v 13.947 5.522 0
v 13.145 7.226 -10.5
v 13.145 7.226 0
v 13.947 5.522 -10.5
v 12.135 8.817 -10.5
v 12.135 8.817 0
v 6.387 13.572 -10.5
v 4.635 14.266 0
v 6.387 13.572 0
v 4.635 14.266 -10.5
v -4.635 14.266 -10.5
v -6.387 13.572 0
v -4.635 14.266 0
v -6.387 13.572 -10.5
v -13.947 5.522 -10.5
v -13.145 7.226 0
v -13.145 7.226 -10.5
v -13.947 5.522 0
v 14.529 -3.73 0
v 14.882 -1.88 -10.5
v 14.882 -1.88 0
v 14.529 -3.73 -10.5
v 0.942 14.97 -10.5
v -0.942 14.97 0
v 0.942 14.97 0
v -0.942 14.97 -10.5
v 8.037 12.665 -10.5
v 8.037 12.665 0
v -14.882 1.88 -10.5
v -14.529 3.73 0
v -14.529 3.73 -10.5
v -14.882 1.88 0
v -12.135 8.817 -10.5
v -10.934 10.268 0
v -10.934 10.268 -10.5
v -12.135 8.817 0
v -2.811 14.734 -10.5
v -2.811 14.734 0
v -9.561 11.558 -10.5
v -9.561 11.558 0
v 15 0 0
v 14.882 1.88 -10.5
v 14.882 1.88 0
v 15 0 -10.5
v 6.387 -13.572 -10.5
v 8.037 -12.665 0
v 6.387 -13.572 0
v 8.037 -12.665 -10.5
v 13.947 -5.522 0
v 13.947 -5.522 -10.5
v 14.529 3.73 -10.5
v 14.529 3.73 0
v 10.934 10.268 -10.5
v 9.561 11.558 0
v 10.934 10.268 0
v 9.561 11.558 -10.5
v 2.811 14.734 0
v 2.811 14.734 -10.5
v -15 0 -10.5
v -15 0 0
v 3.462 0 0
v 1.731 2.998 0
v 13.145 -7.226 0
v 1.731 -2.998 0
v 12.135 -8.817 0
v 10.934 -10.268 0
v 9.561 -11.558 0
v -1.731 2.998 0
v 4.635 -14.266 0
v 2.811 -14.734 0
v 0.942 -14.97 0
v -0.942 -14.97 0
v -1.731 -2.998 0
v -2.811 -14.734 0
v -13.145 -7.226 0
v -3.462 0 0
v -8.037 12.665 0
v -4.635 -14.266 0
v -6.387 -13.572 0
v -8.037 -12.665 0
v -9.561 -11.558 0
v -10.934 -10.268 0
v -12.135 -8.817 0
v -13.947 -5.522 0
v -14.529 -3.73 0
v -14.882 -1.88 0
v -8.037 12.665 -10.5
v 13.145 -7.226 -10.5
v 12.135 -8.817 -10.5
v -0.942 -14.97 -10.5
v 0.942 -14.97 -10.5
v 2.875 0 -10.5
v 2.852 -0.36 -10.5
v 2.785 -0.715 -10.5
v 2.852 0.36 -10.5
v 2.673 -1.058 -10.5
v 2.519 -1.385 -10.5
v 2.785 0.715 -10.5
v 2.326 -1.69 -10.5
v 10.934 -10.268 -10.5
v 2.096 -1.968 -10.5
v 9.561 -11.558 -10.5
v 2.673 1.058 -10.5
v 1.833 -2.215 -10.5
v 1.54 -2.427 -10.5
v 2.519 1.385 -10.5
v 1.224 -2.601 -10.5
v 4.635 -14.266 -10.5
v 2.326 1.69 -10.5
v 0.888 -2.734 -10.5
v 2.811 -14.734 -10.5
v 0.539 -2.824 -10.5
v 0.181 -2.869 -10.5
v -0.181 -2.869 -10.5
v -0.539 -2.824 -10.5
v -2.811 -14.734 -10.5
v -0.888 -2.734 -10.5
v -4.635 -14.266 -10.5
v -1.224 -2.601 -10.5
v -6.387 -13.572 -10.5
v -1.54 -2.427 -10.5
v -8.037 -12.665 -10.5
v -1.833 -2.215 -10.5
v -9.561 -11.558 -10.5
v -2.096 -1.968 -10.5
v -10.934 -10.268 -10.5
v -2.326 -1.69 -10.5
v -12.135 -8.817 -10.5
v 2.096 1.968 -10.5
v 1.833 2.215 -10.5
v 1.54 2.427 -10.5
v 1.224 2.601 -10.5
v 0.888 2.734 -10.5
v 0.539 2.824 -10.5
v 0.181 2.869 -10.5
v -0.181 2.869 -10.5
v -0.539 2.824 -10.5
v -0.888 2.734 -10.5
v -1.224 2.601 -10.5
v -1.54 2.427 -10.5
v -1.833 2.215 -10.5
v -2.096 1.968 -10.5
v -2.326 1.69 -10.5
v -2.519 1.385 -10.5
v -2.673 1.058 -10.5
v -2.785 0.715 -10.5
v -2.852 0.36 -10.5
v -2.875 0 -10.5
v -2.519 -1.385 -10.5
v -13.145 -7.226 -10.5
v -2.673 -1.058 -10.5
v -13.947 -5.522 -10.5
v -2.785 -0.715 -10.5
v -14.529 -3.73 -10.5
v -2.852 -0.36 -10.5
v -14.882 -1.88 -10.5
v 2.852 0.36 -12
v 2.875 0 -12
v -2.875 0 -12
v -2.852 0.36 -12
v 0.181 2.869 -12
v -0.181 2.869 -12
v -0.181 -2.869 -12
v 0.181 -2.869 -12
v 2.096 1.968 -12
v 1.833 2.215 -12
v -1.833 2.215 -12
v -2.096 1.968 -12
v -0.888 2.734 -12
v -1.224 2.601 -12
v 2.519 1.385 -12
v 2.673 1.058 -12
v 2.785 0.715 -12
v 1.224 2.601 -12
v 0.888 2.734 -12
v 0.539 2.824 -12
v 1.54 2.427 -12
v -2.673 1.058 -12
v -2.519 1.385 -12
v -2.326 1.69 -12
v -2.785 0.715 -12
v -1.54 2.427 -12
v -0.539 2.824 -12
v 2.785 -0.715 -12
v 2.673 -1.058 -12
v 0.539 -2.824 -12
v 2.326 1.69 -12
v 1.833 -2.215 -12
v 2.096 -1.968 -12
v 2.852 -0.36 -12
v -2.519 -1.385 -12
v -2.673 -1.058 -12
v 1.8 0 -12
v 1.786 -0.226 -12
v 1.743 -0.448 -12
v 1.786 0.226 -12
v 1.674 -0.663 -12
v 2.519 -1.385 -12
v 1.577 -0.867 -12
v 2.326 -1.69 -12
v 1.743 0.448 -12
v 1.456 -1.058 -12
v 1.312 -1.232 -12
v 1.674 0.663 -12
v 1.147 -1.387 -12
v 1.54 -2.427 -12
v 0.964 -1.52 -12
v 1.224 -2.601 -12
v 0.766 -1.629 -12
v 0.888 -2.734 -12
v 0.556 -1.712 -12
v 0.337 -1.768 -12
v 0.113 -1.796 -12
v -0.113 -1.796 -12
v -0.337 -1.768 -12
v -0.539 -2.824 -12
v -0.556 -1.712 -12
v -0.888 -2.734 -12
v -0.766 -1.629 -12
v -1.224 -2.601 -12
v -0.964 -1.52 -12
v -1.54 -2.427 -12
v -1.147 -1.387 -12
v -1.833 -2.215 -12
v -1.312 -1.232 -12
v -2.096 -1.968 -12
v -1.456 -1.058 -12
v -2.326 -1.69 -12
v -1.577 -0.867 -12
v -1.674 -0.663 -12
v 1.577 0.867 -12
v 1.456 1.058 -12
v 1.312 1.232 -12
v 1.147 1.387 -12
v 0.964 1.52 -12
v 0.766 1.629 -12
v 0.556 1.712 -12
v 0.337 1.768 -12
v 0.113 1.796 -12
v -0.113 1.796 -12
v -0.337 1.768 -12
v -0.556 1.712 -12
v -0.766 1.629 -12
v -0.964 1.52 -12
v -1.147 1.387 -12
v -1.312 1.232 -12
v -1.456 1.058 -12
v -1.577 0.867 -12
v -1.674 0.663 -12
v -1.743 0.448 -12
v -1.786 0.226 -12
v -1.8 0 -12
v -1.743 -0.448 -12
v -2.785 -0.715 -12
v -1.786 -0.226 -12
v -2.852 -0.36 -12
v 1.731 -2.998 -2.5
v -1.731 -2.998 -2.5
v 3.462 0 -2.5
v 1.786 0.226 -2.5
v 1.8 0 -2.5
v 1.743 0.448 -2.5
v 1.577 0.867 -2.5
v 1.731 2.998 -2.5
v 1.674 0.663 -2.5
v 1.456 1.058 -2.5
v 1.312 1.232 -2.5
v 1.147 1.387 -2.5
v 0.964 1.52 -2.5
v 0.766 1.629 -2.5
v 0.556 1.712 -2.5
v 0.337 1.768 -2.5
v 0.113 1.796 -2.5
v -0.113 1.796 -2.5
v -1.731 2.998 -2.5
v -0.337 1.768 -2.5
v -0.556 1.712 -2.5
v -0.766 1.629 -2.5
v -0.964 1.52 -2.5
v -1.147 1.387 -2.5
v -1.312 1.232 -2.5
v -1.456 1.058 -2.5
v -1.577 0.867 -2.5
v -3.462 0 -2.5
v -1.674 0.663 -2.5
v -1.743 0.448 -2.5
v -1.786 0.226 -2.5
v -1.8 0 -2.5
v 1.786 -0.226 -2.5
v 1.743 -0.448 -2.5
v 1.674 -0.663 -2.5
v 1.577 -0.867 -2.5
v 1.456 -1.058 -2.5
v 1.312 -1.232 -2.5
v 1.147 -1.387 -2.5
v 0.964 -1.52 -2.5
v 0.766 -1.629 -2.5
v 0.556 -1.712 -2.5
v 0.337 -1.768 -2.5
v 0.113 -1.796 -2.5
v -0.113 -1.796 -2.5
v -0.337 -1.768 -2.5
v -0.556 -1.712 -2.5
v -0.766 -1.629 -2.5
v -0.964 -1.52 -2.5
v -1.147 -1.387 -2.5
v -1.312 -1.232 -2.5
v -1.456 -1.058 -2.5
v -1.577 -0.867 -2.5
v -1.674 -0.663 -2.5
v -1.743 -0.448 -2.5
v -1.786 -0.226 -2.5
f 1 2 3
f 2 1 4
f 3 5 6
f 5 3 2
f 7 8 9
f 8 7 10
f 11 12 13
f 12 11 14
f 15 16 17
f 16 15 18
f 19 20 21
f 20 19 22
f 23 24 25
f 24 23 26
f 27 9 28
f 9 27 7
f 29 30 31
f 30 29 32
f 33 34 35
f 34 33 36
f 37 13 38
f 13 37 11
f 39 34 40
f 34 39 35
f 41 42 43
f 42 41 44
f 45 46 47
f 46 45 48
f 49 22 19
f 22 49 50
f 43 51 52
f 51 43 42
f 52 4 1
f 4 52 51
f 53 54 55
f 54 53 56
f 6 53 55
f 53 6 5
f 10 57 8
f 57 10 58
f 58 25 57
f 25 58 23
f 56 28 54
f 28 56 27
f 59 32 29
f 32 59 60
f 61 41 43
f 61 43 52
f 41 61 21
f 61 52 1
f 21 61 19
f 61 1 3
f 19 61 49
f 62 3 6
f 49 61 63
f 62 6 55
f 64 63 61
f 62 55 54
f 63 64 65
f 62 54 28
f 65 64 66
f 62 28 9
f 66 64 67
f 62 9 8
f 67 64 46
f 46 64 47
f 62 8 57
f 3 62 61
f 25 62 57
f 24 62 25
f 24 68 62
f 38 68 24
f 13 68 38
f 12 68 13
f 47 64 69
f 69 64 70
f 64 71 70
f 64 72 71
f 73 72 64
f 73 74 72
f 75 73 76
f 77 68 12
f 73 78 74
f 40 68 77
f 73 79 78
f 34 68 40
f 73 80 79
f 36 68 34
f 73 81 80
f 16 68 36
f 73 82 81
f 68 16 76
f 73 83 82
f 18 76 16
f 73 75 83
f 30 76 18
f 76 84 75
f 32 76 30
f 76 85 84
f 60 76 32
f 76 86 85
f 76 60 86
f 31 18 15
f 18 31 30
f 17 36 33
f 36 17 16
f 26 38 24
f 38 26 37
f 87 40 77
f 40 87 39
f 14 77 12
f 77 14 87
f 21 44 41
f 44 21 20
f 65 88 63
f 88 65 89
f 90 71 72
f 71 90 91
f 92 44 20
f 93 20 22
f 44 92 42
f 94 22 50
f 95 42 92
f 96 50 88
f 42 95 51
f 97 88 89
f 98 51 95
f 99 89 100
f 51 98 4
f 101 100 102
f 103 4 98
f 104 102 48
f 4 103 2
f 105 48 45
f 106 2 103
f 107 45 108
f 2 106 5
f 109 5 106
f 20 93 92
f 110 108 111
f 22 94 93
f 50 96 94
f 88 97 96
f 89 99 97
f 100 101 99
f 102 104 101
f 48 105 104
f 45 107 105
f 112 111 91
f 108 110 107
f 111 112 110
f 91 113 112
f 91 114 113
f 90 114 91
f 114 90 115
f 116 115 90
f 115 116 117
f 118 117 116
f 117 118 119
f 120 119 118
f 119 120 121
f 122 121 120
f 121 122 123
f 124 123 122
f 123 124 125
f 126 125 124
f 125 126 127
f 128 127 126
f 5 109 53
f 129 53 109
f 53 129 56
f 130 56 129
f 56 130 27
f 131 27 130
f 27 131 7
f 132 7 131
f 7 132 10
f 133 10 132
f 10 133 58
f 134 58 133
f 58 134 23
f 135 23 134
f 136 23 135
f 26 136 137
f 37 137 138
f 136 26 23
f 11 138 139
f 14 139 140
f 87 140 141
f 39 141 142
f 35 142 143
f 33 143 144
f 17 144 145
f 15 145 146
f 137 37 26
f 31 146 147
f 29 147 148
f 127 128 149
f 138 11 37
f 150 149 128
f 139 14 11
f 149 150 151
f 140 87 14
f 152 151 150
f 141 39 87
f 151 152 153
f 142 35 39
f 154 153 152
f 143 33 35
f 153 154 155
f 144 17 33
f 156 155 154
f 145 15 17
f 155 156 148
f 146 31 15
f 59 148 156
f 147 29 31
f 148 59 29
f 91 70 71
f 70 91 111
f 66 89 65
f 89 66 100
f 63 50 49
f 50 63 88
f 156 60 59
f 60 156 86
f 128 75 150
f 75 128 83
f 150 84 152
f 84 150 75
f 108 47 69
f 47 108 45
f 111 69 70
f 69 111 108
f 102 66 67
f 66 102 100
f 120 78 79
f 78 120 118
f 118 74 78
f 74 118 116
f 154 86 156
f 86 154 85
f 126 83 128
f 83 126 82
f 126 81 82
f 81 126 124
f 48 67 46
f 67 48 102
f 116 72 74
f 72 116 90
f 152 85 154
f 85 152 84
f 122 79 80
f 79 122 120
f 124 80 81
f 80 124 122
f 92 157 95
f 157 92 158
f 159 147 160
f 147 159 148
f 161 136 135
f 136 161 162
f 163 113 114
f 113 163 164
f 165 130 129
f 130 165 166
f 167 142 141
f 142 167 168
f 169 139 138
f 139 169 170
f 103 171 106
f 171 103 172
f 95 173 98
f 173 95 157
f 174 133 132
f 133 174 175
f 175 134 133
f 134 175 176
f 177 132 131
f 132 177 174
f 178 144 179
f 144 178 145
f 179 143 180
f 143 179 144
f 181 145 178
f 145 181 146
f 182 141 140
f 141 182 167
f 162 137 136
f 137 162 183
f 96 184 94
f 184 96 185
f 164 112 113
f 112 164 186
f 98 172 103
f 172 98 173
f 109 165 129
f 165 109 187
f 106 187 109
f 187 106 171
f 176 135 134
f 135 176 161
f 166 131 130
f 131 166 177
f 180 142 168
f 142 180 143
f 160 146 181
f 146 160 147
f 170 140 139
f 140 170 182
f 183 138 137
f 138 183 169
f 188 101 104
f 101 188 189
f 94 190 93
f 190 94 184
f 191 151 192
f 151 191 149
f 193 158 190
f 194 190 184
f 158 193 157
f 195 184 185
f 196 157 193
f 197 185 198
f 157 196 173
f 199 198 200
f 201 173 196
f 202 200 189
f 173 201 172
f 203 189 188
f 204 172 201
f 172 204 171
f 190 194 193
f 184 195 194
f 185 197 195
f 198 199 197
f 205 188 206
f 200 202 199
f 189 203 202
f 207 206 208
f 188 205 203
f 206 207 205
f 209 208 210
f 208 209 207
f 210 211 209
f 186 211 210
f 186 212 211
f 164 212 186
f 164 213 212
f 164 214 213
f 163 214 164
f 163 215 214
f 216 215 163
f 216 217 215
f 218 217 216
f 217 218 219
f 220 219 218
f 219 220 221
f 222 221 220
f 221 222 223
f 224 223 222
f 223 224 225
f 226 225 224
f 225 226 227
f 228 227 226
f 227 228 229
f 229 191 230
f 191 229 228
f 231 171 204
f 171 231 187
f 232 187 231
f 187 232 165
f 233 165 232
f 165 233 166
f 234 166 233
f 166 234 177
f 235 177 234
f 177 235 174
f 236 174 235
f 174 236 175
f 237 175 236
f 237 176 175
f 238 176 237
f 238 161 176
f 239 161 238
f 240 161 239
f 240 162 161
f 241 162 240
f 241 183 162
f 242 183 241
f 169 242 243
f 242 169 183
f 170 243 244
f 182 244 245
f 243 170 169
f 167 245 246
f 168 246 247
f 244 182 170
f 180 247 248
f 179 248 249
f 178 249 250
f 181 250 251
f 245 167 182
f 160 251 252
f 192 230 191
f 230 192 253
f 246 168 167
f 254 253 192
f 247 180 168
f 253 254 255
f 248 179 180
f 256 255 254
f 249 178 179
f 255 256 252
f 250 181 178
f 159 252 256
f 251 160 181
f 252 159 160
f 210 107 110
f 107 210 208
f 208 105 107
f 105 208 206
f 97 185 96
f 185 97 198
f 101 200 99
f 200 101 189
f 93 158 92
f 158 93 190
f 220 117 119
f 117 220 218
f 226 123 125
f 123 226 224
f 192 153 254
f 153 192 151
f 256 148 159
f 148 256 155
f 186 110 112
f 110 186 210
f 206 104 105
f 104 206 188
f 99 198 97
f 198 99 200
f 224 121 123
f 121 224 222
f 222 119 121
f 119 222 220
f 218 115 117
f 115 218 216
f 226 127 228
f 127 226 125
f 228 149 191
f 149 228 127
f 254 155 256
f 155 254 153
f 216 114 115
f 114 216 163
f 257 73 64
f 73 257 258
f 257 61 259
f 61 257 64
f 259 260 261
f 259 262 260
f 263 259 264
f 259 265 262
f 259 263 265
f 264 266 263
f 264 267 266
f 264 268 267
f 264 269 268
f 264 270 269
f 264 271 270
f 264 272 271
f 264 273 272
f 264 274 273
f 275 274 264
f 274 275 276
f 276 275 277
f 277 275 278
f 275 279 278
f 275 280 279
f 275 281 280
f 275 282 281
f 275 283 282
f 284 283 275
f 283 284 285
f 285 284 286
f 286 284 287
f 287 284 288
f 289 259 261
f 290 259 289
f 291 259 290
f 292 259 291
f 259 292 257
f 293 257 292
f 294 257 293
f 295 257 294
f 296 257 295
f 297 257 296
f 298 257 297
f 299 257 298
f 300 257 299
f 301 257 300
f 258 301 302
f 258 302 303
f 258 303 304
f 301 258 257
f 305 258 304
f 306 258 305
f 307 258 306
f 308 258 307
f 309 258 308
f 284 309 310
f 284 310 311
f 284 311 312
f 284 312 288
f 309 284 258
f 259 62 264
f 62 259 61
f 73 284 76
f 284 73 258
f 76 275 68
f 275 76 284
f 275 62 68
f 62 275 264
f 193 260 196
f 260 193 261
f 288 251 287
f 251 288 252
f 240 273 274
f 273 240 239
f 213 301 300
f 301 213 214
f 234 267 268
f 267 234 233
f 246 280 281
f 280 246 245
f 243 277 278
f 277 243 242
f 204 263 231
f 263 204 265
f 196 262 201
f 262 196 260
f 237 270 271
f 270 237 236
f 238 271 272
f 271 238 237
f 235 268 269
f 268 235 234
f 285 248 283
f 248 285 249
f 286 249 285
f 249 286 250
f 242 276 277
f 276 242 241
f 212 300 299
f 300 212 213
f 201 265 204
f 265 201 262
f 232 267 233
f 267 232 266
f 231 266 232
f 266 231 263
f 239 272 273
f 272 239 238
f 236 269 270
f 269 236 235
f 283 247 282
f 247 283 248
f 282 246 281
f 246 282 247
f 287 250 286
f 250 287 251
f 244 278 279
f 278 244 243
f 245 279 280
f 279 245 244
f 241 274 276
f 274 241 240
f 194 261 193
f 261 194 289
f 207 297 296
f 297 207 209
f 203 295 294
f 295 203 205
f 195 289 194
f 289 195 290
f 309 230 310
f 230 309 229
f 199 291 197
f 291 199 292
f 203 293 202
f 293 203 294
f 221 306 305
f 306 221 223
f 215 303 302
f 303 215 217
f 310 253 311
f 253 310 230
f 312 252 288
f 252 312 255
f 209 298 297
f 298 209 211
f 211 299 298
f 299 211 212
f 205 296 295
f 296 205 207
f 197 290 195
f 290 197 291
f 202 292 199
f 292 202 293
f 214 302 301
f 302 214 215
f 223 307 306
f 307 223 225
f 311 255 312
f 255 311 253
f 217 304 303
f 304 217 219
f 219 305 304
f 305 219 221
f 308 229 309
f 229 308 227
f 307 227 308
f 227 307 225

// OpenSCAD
$fn = 50;


difference() {
	union() {
		translate(v = [0, 0, -10.5000000000]) {
			cylinder(h = 10.5000000000, r = 15.0000000000);
		}
		#translate(v = [0, 0, -12.0000000000]) {
			cylinder(h = 12, r = 2.8750000000);
		}
	}
	union() {
		translate(v = [0, 0, 0]) {
			rotate(a = [0, 0, 0]) {
				difference() {
					union() {
						translate(v = [0, 0, -2.5000000000]) {
							linear_extrude(height = 2.5000000000) {
								polygon(points = [[3.4620000000, 0.0000000000], [1.7310000000, 2.9981799479], [-1.7310000000, 2.9981799479], [-3.4620000000, 0.0000000000], [-1.7310000000, -2.9981799479], [1.7310000000, -2.9981799479]]);
							}
						}
					}
					union();
				}
			}
		}
		#translate(v = [0, 0, -100.0000000000]) {
			cylinder(h = 200, r = 1.8000000000);
		}
	}
}
